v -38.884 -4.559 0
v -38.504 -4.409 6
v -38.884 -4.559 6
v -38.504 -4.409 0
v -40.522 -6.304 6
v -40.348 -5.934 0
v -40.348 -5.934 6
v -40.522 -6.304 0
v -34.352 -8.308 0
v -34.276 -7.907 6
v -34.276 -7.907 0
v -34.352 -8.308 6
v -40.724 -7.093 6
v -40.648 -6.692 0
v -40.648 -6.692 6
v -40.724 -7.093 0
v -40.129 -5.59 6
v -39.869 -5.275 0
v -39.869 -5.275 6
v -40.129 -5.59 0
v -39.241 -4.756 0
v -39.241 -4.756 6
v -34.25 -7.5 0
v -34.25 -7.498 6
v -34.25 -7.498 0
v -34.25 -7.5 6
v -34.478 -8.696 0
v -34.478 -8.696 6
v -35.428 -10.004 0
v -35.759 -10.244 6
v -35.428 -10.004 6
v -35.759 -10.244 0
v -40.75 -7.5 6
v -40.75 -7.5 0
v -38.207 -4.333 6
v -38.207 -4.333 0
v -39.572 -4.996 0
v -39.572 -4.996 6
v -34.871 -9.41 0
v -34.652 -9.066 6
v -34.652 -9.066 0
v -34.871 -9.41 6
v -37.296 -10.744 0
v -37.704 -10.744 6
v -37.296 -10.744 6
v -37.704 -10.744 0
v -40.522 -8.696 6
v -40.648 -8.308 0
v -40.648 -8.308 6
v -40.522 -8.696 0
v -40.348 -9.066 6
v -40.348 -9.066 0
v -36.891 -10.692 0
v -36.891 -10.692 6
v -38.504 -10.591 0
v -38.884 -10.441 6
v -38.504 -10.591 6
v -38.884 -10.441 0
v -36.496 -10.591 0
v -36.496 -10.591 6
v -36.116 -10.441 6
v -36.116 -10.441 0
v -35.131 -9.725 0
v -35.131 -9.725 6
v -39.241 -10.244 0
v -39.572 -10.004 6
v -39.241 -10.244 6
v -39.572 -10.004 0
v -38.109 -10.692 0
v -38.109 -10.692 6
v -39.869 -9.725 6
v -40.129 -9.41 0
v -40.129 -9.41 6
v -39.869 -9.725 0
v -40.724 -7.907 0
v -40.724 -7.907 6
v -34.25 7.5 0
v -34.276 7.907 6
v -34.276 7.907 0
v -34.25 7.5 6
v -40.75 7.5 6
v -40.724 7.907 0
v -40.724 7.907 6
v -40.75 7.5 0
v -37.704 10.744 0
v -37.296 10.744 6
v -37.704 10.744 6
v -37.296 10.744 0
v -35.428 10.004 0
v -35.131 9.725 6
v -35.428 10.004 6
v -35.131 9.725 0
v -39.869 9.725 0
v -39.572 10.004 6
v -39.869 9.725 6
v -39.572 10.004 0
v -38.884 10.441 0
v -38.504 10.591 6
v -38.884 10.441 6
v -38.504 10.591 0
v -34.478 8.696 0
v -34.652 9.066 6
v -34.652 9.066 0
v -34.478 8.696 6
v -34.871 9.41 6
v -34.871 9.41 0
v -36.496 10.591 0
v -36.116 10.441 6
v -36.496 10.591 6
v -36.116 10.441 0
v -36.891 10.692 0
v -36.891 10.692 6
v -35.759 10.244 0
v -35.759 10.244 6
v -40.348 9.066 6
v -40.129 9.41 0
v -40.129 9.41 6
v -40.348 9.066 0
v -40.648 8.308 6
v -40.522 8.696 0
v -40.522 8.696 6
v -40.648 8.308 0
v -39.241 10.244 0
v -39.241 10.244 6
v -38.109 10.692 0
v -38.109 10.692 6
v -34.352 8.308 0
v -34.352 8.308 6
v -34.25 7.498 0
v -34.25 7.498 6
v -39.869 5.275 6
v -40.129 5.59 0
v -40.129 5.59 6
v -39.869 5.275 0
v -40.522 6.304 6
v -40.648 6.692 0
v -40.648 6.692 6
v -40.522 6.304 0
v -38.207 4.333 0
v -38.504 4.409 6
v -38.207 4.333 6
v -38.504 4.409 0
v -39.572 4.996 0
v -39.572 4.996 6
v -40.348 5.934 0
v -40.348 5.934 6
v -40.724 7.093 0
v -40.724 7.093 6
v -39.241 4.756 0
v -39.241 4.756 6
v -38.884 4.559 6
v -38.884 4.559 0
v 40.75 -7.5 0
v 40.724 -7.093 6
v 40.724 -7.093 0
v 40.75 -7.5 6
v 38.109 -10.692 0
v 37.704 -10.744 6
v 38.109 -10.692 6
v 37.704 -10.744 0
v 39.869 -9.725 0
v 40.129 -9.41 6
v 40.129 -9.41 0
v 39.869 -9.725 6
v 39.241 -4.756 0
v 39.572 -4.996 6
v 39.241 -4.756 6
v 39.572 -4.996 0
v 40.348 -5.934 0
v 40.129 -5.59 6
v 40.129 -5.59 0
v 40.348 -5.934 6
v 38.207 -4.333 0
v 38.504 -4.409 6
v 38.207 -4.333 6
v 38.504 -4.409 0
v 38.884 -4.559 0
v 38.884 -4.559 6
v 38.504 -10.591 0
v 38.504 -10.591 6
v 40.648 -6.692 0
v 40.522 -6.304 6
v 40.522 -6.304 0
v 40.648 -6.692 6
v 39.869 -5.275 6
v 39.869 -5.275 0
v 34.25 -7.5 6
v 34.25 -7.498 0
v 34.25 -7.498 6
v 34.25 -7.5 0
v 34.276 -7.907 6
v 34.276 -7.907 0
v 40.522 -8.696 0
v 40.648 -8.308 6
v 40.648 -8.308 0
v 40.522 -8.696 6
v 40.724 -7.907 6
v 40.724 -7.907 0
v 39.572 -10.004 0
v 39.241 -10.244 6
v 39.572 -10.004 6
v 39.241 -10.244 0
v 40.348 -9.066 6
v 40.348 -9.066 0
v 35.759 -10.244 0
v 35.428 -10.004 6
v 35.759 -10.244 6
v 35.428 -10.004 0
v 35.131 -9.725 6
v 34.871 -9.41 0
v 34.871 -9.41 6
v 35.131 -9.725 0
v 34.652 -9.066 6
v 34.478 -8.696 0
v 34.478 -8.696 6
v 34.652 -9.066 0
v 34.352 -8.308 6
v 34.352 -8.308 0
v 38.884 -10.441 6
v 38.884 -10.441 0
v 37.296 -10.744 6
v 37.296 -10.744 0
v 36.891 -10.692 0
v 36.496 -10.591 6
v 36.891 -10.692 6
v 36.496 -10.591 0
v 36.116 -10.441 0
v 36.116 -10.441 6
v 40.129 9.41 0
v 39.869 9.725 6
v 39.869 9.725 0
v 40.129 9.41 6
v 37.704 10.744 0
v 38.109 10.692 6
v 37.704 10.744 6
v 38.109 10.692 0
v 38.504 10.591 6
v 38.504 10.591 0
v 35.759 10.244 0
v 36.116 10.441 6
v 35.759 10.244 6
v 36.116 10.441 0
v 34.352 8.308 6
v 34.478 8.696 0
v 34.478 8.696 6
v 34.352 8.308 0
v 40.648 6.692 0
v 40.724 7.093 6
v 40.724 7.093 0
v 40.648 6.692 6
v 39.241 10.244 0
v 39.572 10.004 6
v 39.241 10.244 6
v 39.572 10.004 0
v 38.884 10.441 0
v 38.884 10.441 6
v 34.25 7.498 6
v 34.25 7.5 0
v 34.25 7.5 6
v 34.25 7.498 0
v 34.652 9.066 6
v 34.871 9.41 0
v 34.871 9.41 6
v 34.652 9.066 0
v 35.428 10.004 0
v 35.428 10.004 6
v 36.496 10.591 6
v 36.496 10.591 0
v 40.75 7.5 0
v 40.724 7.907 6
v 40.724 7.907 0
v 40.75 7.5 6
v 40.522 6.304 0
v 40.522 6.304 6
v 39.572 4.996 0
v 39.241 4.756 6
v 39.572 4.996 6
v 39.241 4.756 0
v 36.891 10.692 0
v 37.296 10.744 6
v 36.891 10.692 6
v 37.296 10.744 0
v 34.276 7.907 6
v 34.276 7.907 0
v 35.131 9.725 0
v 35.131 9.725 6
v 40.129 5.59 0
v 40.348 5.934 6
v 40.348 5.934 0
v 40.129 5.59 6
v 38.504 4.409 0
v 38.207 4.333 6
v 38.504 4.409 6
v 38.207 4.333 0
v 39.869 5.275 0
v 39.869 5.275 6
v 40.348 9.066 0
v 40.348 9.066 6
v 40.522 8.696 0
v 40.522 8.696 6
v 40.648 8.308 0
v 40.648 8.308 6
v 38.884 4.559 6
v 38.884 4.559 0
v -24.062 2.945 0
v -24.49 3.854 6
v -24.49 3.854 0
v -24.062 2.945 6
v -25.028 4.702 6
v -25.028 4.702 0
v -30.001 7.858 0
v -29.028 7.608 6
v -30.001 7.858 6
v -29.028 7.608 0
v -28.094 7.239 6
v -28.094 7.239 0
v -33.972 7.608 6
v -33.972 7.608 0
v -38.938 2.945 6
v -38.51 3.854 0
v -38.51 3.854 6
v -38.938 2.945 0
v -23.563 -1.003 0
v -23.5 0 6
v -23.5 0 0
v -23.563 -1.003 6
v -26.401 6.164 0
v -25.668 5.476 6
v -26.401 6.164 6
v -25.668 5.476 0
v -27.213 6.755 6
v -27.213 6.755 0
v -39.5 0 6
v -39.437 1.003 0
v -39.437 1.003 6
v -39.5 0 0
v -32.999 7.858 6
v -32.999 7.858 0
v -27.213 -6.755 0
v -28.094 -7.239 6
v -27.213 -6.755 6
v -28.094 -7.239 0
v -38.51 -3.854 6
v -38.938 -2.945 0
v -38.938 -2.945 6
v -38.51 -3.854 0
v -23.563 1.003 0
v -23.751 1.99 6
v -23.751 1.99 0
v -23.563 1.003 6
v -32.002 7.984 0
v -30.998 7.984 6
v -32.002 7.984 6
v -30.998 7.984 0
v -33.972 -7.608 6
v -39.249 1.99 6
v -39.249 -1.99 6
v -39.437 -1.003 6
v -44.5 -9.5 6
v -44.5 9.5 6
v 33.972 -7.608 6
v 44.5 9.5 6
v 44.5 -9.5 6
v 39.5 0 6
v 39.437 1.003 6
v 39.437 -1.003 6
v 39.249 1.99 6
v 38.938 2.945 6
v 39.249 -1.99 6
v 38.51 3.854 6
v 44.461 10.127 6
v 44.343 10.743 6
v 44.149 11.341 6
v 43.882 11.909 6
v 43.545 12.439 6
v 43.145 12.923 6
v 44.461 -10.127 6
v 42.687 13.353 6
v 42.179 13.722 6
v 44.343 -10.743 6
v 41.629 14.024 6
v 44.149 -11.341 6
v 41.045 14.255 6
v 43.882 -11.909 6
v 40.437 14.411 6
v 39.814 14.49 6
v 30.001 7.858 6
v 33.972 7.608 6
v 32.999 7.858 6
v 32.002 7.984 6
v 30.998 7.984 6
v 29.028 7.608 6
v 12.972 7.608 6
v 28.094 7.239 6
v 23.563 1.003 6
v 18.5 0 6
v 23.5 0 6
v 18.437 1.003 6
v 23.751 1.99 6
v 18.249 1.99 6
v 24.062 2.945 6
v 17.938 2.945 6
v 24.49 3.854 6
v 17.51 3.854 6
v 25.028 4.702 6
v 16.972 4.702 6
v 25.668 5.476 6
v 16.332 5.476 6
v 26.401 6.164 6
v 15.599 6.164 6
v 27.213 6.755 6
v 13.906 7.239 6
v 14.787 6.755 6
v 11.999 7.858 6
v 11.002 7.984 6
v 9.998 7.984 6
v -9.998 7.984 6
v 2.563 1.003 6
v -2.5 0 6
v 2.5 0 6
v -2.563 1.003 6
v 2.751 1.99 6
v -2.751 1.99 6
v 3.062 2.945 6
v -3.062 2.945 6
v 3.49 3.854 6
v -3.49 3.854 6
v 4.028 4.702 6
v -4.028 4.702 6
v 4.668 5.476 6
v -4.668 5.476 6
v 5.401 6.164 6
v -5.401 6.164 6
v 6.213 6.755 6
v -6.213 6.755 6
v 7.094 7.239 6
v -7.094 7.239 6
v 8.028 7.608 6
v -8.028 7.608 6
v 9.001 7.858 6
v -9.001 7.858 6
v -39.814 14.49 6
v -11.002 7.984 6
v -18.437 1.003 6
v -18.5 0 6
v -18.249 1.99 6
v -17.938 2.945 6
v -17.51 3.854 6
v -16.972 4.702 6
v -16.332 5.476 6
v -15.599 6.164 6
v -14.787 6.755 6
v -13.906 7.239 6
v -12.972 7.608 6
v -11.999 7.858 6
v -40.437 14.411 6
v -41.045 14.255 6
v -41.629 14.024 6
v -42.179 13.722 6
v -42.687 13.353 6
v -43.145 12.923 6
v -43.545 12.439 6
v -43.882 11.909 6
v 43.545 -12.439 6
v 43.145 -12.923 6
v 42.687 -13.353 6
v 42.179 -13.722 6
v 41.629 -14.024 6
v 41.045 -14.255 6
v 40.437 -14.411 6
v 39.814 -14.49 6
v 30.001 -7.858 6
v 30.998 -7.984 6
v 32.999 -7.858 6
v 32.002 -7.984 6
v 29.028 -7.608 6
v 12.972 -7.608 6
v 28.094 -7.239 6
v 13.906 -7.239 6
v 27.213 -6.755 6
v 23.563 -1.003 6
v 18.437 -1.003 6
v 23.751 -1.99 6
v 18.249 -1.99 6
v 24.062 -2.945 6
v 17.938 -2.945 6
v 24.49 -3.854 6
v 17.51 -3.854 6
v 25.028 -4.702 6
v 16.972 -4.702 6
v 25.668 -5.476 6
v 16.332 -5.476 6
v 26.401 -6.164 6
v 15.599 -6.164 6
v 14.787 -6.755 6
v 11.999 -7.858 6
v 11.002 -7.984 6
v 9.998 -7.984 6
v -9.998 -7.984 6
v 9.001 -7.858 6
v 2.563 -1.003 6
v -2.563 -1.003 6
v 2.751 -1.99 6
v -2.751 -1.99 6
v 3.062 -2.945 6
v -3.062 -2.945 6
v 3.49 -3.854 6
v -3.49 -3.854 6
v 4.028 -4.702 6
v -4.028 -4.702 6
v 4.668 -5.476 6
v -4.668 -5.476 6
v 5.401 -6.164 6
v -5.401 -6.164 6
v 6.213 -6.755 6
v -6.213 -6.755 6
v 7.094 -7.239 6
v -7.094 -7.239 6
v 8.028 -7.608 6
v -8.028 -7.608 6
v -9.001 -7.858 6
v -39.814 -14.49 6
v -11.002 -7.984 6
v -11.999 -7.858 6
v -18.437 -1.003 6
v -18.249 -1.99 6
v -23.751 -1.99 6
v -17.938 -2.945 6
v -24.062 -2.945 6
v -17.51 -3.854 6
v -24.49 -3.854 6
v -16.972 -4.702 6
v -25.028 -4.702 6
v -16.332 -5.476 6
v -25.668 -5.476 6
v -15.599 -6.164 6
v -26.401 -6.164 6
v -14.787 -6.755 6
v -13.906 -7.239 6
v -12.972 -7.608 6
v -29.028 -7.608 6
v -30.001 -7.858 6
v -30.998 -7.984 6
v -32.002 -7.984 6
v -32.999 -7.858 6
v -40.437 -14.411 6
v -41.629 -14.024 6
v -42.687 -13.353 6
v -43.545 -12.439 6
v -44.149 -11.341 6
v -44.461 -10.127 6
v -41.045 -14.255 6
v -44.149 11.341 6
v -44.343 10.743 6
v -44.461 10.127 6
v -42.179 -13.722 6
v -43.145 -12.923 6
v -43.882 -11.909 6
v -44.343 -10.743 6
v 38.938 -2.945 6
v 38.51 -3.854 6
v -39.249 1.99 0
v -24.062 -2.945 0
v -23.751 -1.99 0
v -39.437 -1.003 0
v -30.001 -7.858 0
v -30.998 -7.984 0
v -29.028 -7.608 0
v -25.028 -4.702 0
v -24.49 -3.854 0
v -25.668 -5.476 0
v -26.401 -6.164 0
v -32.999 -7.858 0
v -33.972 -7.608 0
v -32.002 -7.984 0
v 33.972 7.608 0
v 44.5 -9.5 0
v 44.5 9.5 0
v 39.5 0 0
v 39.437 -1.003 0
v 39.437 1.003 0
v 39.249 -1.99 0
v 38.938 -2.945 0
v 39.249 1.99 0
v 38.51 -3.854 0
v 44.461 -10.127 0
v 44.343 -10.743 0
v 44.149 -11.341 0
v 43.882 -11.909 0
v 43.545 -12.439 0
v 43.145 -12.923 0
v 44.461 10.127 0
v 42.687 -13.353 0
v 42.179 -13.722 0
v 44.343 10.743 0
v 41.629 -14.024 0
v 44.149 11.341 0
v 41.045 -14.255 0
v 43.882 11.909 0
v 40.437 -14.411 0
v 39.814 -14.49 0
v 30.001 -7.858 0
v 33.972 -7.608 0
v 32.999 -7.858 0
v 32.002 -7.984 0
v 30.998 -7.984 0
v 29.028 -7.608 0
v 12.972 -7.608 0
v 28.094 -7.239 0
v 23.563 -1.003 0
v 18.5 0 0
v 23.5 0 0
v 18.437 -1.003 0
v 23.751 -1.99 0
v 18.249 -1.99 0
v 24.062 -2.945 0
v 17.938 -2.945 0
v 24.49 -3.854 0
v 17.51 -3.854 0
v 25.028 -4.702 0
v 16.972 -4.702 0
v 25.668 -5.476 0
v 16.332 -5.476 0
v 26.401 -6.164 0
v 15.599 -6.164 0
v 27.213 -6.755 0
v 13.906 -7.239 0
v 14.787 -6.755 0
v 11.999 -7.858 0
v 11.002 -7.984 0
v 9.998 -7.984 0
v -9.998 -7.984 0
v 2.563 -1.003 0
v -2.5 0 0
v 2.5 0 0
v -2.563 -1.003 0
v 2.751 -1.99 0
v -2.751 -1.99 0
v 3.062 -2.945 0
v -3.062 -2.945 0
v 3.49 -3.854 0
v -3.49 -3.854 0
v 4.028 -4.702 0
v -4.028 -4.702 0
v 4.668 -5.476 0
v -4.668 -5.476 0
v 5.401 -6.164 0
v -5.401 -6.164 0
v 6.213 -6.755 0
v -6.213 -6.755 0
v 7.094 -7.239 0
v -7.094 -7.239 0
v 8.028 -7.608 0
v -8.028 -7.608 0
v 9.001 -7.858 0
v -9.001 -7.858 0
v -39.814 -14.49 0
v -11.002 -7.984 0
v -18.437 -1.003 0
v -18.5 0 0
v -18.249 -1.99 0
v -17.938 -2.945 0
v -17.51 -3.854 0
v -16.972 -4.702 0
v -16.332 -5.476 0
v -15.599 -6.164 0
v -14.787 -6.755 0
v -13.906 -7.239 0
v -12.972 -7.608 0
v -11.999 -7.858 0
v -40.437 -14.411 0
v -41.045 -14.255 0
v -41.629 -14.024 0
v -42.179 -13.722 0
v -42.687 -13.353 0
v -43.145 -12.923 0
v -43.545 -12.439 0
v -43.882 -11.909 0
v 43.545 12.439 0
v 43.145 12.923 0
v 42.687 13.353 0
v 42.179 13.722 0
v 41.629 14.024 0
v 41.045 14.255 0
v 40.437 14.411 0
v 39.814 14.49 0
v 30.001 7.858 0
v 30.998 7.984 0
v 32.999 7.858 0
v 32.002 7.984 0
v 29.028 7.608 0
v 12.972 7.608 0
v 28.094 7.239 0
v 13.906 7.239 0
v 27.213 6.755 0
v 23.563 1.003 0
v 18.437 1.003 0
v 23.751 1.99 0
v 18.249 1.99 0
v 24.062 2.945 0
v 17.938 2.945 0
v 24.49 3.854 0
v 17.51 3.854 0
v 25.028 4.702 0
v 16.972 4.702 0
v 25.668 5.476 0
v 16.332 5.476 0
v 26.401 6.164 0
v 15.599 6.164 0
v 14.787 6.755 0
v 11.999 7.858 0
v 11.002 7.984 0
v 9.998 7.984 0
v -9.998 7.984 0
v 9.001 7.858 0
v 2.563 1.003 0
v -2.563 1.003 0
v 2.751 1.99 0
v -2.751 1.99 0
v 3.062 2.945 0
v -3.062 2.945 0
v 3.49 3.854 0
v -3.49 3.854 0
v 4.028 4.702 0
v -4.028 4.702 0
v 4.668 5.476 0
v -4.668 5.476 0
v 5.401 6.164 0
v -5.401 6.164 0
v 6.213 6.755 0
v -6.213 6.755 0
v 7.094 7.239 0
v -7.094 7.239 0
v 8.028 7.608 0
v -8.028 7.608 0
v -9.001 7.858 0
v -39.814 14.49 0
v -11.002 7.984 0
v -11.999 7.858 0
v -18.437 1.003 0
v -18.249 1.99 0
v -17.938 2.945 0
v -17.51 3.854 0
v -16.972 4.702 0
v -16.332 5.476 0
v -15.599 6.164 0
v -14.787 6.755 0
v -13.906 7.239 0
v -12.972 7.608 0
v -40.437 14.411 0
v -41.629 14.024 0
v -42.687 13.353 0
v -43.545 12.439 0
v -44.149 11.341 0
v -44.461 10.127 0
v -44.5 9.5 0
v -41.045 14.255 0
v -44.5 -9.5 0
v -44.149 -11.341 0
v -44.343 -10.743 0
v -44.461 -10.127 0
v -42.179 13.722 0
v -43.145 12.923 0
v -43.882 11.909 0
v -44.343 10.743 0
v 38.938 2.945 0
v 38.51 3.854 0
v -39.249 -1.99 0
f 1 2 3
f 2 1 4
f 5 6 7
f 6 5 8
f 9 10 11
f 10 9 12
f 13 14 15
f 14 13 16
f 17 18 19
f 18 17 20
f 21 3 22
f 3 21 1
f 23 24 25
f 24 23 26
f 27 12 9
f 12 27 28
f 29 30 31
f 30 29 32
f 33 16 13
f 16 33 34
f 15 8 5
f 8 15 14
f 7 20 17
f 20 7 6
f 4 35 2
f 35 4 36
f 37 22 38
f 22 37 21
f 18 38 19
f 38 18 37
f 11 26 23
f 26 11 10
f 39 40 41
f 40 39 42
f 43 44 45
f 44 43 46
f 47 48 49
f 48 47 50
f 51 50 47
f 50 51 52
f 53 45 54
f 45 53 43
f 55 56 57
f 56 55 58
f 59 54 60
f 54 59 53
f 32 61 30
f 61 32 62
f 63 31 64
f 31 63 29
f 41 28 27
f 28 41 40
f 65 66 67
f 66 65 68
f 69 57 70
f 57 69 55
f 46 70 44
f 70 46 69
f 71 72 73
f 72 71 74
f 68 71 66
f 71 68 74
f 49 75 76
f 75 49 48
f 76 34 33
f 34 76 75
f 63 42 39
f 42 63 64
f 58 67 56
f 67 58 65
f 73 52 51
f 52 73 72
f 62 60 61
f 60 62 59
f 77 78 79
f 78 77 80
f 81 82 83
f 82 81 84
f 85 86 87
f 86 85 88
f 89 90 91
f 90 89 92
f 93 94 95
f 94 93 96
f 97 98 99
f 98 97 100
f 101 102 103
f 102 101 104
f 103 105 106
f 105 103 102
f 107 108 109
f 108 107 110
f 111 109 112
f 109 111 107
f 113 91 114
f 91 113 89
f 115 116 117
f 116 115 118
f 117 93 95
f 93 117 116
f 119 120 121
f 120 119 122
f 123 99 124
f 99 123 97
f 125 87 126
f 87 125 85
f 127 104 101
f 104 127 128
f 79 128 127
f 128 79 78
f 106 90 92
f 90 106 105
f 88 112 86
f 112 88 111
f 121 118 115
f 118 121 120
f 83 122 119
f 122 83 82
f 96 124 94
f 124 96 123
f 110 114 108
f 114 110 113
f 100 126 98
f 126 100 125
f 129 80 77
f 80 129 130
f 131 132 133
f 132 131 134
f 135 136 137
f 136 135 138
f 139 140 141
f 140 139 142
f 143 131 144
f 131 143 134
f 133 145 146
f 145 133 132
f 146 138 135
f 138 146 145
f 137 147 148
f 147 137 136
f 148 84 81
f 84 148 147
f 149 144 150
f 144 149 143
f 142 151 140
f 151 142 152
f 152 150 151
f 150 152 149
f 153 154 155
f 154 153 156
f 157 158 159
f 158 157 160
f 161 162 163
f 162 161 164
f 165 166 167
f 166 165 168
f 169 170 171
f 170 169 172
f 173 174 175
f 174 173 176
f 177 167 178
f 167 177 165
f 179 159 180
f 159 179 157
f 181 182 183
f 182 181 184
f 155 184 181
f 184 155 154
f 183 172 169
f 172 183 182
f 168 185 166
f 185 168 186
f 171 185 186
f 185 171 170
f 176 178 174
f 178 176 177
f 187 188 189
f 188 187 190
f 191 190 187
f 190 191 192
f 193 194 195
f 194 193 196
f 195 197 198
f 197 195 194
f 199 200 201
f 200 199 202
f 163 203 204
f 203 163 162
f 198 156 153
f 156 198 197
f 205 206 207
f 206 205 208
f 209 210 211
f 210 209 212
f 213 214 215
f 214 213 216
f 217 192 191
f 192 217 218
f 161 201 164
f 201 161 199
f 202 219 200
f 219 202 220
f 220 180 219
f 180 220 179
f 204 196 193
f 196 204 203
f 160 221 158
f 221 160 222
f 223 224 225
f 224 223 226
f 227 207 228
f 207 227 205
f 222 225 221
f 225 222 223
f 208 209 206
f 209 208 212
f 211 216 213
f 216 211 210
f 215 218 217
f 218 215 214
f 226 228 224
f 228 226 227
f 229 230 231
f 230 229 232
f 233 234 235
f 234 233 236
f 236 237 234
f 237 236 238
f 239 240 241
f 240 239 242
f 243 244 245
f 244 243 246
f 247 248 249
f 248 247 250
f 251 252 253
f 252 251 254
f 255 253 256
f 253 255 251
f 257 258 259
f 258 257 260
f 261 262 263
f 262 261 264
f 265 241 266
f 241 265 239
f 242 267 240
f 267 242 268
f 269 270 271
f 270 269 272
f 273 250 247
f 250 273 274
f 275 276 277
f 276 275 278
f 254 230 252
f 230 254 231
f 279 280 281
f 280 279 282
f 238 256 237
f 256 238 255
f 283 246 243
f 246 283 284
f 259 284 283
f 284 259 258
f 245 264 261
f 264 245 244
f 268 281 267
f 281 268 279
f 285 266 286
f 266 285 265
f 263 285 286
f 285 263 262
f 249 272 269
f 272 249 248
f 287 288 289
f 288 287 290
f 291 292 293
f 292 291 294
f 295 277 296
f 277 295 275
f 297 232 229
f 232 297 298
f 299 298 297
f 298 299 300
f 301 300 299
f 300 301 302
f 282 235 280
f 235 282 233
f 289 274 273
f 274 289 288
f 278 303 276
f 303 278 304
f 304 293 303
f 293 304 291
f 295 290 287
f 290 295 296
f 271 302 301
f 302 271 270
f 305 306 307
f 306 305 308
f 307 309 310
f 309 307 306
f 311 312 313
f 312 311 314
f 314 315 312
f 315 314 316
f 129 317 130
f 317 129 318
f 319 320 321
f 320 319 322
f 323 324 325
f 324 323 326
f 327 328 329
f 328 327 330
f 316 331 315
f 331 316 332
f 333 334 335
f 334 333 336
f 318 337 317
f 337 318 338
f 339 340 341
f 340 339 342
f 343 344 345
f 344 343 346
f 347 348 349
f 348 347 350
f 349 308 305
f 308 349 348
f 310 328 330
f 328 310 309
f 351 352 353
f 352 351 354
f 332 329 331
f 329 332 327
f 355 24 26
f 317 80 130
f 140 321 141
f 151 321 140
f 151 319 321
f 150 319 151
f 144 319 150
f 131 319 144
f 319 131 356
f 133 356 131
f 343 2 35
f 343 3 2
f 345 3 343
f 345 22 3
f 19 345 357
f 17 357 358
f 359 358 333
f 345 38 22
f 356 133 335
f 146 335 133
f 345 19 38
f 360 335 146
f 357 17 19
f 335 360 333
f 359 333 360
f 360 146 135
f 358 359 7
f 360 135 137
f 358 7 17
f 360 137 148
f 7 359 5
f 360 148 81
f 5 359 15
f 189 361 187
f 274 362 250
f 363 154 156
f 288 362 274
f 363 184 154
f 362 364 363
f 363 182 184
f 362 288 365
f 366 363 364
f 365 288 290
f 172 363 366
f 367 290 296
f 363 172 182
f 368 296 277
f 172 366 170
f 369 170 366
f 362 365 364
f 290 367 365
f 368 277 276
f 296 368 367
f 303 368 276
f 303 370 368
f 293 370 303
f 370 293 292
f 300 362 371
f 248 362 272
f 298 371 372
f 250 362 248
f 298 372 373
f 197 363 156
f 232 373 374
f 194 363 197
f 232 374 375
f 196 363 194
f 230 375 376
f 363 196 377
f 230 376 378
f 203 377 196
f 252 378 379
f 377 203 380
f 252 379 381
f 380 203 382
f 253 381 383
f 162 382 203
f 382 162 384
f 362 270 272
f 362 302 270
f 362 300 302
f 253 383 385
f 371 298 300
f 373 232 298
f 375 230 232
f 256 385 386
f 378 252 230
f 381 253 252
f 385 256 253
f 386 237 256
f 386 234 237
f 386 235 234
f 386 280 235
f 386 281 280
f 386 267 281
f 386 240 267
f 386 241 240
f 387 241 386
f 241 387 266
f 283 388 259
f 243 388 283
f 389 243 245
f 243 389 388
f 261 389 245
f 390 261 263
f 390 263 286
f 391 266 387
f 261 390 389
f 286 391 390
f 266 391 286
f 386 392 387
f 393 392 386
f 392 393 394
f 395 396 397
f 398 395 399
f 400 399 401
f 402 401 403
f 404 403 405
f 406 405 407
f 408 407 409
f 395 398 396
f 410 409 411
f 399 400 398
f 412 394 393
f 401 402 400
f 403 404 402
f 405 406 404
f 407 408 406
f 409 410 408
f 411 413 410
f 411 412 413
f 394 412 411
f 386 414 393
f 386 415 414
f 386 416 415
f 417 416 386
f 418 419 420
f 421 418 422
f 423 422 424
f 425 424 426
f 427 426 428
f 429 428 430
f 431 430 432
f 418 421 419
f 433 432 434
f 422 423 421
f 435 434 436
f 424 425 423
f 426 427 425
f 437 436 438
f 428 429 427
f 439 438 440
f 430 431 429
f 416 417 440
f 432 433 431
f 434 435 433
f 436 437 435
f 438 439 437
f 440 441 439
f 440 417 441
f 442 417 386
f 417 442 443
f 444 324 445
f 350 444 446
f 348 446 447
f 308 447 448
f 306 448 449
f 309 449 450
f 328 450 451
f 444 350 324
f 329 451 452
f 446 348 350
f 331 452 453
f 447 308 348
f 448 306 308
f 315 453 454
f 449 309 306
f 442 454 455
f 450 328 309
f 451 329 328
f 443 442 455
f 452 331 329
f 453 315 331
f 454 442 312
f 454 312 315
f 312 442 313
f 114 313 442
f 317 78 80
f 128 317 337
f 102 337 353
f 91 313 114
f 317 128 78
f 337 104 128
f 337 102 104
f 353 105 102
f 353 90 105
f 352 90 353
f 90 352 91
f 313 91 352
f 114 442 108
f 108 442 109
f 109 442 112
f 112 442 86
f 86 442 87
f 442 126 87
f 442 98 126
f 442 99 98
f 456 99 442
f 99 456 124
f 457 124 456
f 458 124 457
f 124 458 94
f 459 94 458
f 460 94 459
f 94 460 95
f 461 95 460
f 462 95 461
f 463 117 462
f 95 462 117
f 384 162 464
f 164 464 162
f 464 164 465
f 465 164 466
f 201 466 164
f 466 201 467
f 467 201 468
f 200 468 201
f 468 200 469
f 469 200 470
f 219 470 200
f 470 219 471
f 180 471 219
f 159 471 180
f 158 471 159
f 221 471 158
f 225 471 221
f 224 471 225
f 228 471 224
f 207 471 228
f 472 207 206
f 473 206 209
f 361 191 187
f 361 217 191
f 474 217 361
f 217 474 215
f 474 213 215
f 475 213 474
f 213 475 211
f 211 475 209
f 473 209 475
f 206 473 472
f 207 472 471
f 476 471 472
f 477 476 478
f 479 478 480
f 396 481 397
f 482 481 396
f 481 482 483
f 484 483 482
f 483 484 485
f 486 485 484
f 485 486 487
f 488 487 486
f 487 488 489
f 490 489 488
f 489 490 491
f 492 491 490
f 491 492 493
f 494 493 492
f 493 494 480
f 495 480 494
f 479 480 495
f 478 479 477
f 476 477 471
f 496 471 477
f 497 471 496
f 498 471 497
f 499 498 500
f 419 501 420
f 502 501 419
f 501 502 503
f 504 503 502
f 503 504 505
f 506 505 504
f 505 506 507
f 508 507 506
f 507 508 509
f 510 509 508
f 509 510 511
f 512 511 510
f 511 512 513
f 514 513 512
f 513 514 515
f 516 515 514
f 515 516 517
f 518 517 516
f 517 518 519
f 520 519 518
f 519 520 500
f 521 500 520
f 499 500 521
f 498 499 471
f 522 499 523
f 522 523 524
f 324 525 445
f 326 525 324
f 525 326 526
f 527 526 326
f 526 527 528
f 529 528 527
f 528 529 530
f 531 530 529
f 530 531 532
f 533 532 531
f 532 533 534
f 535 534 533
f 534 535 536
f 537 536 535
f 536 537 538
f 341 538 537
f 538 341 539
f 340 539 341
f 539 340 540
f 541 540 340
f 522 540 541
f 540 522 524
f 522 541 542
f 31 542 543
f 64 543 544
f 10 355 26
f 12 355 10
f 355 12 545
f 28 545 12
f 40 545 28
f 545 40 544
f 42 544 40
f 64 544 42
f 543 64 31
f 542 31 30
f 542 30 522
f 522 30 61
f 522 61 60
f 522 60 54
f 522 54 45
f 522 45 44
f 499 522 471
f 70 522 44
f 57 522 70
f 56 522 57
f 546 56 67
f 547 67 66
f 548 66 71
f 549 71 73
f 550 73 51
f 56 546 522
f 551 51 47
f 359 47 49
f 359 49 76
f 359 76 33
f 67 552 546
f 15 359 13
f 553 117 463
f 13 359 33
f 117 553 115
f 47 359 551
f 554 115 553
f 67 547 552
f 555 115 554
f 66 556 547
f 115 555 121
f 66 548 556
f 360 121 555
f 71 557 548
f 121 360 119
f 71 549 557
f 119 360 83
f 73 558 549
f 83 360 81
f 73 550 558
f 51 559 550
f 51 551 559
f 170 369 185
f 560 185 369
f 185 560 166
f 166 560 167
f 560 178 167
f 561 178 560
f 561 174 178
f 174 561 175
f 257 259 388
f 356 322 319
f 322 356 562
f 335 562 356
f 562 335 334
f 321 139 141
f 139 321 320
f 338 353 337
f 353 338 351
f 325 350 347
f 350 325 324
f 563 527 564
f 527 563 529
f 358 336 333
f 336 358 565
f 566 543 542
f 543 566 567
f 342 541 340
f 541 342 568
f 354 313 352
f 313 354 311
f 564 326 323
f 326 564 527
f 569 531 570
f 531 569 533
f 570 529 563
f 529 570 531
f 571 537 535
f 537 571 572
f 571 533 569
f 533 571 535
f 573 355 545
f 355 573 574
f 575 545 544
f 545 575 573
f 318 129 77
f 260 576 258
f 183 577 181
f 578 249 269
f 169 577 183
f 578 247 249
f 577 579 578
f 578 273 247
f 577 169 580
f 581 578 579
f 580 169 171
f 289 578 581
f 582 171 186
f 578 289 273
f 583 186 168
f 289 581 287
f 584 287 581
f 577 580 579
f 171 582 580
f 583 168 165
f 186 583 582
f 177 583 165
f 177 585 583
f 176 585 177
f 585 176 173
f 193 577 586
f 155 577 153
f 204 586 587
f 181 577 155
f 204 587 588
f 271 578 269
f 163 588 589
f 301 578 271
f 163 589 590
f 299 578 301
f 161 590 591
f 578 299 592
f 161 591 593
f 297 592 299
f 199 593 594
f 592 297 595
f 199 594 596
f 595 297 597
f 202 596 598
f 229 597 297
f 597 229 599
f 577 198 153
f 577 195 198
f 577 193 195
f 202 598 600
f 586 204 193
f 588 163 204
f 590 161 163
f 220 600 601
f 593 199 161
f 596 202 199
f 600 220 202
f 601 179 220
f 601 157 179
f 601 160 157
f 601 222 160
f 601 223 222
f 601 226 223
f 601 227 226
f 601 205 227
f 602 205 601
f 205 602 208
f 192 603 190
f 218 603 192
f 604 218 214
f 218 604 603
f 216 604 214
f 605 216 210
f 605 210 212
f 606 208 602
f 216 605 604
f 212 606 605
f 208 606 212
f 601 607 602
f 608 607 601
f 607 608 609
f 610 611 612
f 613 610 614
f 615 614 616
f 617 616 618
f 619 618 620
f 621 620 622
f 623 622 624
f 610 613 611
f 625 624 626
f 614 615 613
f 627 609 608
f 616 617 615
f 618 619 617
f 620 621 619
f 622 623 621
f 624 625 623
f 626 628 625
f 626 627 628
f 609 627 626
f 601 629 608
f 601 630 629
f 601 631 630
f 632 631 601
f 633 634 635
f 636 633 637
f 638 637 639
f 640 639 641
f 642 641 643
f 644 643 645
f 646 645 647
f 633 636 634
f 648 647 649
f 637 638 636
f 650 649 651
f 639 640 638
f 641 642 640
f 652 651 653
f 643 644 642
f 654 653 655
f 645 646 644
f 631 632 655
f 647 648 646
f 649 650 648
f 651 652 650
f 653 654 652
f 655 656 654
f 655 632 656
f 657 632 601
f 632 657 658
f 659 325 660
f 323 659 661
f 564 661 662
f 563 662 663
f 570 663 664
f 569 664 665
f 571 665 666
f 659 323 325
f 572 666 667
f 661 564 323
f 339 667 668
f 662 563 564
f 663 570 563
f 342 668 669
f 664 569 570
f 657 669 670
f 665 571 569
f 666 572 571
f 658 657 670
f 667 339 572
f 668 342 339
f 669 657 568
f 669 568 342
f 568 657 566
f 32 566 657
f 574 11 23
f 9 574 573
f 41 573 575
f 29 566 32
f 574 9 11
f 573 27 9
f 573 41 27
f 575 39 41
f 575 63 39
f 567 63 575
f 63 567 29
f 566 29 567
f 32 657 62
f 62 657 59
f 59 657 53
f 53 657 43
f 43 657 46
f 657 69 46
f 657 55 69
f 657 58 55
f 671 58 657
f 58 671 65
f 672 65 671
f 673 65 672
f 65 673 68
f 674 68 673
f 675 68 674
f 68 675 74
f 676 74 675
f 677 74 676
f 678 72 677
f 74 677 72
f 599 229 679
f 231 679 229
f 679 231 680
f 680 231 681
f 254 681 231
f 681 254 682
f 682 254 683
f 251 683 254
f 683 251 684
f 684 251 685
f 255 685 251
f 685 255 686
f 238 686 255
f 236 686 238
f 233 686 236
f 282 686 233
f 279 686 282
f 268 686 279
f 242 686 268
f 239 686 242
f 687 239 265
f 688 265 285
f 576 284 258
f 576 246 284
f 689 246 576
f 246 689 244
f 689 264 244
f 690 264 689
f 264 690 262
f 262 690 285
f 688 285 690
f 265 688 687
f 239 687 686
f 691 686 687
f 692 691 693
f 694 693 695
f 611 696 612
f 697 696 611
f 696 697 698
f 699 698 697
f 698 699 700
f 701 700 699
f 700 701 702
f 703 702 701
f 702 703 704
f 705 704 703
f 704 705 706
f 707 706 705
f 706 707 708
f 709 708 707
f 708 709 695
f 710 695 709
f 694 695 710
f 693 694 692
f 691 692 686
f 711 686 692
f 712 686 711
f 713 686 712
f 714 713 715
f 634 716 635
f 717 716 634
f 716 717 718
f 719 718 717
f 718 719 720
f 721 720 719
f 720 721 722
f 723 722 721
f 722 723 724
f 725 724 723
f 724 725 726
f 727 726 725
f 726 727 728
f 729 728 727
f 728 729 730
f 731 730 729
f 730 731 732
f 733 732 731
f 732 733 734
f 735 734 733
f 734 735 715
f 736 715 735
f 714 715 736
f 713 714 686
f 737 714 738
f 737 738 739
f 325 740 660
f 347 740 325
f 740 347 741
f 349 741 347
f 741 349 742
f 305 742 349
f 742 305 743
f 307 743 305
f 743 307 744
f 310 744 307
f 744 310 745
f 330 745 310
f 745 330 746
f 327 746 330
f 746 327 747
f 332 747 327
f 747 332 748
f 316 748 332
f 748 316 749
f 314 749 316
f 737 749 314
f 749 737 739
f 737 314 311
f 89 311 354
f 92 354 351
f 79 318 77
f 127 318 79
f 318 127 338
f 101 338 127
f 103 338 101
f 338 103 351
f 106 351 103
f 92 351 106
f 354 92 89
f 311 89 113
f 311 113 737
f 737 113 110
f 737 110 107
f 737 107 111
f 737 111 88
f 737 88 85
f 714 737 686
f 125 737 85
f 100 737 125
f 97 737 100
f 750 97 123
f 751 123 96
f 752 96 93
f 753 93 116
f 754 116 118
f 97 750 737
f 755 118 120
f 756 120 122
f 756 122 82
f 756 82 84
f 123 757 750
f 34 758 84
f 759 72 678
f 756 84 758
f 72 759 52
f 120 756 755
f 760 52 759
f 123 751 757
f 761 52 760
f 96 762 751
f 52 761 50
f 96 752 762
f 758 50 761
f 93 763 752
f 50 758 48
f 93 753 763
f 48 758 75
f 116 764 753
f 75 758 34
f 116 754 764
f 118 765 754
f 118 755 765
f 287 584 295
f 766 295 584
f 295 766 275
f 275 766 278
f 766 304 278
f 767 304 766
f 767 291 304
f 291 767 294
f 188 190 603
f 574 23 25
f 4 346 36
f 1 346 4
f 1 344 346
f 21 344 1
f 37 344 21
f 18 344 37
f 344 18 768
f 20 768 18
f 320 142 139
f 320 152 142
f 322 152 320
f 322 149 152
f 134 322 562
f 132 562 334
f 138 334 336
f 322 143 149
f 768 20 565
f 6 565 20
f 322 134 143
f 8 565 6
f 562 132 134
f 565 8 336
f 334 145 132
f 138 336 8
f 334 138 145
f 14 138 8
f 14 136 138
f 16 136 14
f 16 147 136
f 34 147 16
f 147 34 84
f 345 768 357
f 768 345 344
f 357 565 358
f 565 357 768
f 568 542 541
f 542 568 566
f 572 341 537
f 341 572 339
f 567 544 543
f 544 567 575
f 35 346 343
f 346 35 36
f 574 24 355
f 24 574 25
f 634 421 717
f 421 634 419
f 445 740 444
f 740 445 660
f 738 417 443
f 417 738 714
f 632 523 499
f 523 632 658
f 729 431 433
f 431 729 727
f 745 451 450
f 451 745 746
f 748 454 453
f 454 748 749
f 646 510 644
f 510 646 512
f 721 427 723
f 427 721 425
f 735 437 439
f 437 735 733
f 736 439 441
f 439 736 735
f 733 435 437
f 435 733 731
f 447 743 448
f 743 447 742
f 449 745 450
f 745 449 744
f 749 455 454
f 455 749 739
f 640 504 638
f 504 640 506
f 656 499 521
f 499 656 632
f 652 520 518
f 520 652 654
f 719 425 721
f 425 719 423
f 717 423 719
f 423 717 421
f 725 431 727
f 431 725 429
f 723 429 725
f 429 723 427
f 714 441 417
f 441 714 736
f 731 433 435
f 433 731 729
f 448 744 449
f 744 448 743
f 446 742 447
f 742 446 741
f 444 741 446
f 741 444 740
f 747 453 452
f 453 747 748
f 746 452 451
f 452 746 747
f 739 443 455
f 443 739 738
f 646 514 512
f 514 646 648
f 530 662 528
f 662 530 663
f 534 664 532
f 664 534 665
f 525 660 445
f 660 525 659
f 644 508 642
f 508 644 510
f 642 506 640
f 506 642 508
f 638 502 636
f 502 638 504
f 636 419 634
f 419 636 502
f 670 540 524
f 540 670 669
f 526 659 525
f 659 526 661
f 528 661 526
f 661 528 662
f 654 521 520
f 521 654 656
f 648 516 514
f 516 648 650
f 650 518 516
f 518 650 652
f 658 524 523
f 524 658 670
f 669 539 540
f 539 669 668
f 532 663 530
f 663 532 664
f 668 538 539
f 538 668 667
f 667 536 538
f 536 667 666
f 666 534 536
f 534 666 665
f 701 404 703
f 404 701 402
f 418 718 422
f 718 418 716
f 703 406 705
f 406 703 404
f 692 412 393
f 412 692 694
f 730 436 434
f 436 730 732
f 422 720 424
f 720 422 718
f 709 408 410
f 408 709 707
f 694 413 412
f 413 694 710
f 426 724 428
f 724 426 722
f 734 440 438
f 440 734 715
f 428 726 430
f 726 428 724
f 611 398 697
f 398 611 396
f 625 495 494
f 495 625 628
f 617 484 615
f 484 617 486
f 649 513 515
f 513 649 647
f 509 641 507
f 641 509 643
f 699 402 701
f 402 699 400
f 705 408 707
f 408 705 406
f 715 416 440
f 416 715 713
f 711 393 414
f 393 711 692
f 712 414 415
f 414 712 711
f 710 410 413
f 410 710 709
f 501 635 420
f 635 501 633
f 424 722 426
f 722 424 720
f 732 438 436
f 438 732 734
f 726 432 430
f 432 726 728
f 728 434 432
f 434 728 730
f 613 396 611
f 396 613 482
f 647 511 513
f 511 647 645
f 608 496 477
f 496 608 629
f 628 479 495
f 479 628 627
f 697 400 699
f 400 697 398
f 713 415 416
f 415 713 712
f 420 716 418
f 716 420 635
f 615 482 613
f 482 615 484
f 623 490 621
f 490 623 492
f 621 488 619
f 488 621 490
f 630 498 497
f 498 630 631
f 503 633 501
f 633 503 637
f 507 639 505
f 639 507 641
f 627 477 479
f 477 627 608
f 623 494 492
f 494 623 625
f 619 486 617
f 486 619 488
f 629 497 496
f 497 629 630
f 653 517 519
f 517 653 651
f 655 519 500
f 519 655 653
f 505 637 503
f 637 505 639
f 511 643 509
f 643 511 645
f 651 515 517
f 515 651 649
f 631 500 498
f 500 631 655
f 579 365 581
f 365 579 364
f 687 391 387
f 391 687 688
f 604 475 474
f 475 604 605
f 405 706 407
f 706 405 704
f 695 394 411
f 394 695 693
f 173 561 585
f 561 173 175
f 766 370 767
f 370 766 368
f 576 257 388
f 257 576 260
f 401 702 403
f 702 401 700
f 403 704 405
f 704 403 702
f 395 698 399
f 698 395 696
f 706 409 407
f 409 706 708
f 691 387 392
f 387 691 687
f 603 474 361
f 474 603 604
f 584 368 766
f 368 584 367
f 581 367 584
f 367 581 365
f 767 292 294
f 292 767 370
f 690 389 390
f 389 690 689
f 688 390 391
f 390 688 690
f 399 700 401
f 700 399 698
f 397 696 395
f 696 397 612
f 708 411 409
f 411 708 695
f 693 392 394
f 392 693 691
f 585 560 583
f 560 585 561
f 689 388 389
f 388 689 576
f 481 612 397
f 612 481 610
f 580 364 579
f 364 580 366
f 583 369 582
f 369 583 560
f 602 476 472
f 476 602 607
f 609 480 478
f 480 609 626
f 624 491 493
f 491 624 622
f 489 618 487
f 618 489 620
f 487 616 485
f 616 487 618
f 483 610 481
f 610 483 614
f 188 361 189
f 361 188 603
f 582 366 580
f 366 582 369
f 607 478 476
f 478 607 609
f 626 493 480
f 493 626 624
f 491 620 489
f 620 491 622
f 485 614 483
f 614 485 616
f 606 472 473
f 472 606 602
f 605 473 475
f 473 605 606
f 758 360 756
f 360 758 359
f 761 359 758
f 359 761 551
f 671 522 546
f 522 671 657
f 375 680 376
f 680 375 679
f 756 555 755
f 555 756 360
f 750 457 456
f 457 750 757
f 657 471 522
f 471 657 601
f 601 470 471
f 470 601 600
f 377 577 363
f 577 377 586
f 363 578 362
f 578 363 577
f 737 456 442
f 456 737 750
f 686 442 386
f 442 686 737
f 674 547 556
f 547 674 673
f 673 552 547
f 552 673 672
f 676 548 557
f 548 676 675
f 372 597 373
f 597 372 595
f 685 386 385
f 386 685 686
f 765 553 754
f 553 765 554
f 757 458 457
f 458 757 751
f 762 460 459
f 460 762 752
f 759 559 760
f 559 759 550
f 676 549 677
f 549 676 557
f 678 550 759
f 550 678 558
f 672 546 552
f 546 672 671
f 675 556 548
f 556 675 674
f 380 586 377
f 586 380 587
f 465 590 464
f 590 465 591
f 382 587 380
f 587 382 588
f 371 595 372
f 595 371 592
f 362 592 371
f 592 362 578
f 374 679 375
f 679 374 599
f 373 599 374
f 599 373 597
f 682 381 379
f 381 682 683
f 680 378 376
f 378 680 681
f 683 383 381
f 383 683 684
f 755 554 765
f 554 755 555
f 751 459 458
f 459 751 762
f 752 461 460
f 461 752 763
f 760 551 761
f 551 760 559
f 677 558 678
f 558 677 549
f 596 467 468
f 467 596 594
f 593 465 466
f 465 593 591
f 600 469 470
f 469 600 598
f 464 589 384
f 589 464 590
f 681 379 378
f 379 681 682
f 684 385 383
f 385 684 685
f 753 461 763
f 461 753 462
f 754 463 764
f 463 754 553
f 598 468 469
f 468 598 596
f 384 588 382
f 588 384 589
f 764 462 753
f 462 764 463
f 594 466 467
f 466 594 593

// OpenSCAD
$fn = 50;


difference() {
	union() {
		hull() {
			translate(v = [-39.5000000000, 9.5000000000, 0]) {
				cylinder(h = 6, r = 5);
			}
			translate(v = [39.5000000000, 9.5000000000, 0]) {
				cylinder(h = 6, r = 5);
			}
			translate(v = [-39.5000000000, -9.5000000000, 0]) {
				cylinder(h = 6, r = 5);
			}
			translate(v = [39.5000000000, -9.5000000000, 0]) {
				cylinder(h = 6, r = 5);
			}
		}
	}
	union() {
		#translate(v = [-37.5000000000, -7.5000000000, -100.0000000000]) {
			cylinder(h = 200, r = 3.2500000000);
		}
		#translate(v = [-37.5000000000, 7.5000000000, -100.0000000000]) {
			cylinder(h = 200, r = 3.2500000000);
		}
		#translate(v = [37.5000000000, -7.5000000000, -100.0000000000]) {
			cylinder(h = 200, r = 3.2500000000);
		}
		#translate(v = [37.5000000000, 7.5000000000, -100.0000000000]) {
			cylinder(h = 200, r = 3.2500000000);
		}
		#translate(v = [-31.5000000000, 0, 0]) {
			cylinder(h = 6, r = 8.0000000000);
		}
		#translate(v = [-10.5000000000, 0, 0]) {
			cylinder(h = 6, r = 8.0000000000);
		}
		#translate(v = [10.5000000000, 0, 0]) {
			cylinder(h = 6, r = 8.0000000000);
		}
		#translate(v = [31.5000000000, 0, 0]) {
			cylinder(h = 6, r = 8.0000000000);
		}
	}
}
